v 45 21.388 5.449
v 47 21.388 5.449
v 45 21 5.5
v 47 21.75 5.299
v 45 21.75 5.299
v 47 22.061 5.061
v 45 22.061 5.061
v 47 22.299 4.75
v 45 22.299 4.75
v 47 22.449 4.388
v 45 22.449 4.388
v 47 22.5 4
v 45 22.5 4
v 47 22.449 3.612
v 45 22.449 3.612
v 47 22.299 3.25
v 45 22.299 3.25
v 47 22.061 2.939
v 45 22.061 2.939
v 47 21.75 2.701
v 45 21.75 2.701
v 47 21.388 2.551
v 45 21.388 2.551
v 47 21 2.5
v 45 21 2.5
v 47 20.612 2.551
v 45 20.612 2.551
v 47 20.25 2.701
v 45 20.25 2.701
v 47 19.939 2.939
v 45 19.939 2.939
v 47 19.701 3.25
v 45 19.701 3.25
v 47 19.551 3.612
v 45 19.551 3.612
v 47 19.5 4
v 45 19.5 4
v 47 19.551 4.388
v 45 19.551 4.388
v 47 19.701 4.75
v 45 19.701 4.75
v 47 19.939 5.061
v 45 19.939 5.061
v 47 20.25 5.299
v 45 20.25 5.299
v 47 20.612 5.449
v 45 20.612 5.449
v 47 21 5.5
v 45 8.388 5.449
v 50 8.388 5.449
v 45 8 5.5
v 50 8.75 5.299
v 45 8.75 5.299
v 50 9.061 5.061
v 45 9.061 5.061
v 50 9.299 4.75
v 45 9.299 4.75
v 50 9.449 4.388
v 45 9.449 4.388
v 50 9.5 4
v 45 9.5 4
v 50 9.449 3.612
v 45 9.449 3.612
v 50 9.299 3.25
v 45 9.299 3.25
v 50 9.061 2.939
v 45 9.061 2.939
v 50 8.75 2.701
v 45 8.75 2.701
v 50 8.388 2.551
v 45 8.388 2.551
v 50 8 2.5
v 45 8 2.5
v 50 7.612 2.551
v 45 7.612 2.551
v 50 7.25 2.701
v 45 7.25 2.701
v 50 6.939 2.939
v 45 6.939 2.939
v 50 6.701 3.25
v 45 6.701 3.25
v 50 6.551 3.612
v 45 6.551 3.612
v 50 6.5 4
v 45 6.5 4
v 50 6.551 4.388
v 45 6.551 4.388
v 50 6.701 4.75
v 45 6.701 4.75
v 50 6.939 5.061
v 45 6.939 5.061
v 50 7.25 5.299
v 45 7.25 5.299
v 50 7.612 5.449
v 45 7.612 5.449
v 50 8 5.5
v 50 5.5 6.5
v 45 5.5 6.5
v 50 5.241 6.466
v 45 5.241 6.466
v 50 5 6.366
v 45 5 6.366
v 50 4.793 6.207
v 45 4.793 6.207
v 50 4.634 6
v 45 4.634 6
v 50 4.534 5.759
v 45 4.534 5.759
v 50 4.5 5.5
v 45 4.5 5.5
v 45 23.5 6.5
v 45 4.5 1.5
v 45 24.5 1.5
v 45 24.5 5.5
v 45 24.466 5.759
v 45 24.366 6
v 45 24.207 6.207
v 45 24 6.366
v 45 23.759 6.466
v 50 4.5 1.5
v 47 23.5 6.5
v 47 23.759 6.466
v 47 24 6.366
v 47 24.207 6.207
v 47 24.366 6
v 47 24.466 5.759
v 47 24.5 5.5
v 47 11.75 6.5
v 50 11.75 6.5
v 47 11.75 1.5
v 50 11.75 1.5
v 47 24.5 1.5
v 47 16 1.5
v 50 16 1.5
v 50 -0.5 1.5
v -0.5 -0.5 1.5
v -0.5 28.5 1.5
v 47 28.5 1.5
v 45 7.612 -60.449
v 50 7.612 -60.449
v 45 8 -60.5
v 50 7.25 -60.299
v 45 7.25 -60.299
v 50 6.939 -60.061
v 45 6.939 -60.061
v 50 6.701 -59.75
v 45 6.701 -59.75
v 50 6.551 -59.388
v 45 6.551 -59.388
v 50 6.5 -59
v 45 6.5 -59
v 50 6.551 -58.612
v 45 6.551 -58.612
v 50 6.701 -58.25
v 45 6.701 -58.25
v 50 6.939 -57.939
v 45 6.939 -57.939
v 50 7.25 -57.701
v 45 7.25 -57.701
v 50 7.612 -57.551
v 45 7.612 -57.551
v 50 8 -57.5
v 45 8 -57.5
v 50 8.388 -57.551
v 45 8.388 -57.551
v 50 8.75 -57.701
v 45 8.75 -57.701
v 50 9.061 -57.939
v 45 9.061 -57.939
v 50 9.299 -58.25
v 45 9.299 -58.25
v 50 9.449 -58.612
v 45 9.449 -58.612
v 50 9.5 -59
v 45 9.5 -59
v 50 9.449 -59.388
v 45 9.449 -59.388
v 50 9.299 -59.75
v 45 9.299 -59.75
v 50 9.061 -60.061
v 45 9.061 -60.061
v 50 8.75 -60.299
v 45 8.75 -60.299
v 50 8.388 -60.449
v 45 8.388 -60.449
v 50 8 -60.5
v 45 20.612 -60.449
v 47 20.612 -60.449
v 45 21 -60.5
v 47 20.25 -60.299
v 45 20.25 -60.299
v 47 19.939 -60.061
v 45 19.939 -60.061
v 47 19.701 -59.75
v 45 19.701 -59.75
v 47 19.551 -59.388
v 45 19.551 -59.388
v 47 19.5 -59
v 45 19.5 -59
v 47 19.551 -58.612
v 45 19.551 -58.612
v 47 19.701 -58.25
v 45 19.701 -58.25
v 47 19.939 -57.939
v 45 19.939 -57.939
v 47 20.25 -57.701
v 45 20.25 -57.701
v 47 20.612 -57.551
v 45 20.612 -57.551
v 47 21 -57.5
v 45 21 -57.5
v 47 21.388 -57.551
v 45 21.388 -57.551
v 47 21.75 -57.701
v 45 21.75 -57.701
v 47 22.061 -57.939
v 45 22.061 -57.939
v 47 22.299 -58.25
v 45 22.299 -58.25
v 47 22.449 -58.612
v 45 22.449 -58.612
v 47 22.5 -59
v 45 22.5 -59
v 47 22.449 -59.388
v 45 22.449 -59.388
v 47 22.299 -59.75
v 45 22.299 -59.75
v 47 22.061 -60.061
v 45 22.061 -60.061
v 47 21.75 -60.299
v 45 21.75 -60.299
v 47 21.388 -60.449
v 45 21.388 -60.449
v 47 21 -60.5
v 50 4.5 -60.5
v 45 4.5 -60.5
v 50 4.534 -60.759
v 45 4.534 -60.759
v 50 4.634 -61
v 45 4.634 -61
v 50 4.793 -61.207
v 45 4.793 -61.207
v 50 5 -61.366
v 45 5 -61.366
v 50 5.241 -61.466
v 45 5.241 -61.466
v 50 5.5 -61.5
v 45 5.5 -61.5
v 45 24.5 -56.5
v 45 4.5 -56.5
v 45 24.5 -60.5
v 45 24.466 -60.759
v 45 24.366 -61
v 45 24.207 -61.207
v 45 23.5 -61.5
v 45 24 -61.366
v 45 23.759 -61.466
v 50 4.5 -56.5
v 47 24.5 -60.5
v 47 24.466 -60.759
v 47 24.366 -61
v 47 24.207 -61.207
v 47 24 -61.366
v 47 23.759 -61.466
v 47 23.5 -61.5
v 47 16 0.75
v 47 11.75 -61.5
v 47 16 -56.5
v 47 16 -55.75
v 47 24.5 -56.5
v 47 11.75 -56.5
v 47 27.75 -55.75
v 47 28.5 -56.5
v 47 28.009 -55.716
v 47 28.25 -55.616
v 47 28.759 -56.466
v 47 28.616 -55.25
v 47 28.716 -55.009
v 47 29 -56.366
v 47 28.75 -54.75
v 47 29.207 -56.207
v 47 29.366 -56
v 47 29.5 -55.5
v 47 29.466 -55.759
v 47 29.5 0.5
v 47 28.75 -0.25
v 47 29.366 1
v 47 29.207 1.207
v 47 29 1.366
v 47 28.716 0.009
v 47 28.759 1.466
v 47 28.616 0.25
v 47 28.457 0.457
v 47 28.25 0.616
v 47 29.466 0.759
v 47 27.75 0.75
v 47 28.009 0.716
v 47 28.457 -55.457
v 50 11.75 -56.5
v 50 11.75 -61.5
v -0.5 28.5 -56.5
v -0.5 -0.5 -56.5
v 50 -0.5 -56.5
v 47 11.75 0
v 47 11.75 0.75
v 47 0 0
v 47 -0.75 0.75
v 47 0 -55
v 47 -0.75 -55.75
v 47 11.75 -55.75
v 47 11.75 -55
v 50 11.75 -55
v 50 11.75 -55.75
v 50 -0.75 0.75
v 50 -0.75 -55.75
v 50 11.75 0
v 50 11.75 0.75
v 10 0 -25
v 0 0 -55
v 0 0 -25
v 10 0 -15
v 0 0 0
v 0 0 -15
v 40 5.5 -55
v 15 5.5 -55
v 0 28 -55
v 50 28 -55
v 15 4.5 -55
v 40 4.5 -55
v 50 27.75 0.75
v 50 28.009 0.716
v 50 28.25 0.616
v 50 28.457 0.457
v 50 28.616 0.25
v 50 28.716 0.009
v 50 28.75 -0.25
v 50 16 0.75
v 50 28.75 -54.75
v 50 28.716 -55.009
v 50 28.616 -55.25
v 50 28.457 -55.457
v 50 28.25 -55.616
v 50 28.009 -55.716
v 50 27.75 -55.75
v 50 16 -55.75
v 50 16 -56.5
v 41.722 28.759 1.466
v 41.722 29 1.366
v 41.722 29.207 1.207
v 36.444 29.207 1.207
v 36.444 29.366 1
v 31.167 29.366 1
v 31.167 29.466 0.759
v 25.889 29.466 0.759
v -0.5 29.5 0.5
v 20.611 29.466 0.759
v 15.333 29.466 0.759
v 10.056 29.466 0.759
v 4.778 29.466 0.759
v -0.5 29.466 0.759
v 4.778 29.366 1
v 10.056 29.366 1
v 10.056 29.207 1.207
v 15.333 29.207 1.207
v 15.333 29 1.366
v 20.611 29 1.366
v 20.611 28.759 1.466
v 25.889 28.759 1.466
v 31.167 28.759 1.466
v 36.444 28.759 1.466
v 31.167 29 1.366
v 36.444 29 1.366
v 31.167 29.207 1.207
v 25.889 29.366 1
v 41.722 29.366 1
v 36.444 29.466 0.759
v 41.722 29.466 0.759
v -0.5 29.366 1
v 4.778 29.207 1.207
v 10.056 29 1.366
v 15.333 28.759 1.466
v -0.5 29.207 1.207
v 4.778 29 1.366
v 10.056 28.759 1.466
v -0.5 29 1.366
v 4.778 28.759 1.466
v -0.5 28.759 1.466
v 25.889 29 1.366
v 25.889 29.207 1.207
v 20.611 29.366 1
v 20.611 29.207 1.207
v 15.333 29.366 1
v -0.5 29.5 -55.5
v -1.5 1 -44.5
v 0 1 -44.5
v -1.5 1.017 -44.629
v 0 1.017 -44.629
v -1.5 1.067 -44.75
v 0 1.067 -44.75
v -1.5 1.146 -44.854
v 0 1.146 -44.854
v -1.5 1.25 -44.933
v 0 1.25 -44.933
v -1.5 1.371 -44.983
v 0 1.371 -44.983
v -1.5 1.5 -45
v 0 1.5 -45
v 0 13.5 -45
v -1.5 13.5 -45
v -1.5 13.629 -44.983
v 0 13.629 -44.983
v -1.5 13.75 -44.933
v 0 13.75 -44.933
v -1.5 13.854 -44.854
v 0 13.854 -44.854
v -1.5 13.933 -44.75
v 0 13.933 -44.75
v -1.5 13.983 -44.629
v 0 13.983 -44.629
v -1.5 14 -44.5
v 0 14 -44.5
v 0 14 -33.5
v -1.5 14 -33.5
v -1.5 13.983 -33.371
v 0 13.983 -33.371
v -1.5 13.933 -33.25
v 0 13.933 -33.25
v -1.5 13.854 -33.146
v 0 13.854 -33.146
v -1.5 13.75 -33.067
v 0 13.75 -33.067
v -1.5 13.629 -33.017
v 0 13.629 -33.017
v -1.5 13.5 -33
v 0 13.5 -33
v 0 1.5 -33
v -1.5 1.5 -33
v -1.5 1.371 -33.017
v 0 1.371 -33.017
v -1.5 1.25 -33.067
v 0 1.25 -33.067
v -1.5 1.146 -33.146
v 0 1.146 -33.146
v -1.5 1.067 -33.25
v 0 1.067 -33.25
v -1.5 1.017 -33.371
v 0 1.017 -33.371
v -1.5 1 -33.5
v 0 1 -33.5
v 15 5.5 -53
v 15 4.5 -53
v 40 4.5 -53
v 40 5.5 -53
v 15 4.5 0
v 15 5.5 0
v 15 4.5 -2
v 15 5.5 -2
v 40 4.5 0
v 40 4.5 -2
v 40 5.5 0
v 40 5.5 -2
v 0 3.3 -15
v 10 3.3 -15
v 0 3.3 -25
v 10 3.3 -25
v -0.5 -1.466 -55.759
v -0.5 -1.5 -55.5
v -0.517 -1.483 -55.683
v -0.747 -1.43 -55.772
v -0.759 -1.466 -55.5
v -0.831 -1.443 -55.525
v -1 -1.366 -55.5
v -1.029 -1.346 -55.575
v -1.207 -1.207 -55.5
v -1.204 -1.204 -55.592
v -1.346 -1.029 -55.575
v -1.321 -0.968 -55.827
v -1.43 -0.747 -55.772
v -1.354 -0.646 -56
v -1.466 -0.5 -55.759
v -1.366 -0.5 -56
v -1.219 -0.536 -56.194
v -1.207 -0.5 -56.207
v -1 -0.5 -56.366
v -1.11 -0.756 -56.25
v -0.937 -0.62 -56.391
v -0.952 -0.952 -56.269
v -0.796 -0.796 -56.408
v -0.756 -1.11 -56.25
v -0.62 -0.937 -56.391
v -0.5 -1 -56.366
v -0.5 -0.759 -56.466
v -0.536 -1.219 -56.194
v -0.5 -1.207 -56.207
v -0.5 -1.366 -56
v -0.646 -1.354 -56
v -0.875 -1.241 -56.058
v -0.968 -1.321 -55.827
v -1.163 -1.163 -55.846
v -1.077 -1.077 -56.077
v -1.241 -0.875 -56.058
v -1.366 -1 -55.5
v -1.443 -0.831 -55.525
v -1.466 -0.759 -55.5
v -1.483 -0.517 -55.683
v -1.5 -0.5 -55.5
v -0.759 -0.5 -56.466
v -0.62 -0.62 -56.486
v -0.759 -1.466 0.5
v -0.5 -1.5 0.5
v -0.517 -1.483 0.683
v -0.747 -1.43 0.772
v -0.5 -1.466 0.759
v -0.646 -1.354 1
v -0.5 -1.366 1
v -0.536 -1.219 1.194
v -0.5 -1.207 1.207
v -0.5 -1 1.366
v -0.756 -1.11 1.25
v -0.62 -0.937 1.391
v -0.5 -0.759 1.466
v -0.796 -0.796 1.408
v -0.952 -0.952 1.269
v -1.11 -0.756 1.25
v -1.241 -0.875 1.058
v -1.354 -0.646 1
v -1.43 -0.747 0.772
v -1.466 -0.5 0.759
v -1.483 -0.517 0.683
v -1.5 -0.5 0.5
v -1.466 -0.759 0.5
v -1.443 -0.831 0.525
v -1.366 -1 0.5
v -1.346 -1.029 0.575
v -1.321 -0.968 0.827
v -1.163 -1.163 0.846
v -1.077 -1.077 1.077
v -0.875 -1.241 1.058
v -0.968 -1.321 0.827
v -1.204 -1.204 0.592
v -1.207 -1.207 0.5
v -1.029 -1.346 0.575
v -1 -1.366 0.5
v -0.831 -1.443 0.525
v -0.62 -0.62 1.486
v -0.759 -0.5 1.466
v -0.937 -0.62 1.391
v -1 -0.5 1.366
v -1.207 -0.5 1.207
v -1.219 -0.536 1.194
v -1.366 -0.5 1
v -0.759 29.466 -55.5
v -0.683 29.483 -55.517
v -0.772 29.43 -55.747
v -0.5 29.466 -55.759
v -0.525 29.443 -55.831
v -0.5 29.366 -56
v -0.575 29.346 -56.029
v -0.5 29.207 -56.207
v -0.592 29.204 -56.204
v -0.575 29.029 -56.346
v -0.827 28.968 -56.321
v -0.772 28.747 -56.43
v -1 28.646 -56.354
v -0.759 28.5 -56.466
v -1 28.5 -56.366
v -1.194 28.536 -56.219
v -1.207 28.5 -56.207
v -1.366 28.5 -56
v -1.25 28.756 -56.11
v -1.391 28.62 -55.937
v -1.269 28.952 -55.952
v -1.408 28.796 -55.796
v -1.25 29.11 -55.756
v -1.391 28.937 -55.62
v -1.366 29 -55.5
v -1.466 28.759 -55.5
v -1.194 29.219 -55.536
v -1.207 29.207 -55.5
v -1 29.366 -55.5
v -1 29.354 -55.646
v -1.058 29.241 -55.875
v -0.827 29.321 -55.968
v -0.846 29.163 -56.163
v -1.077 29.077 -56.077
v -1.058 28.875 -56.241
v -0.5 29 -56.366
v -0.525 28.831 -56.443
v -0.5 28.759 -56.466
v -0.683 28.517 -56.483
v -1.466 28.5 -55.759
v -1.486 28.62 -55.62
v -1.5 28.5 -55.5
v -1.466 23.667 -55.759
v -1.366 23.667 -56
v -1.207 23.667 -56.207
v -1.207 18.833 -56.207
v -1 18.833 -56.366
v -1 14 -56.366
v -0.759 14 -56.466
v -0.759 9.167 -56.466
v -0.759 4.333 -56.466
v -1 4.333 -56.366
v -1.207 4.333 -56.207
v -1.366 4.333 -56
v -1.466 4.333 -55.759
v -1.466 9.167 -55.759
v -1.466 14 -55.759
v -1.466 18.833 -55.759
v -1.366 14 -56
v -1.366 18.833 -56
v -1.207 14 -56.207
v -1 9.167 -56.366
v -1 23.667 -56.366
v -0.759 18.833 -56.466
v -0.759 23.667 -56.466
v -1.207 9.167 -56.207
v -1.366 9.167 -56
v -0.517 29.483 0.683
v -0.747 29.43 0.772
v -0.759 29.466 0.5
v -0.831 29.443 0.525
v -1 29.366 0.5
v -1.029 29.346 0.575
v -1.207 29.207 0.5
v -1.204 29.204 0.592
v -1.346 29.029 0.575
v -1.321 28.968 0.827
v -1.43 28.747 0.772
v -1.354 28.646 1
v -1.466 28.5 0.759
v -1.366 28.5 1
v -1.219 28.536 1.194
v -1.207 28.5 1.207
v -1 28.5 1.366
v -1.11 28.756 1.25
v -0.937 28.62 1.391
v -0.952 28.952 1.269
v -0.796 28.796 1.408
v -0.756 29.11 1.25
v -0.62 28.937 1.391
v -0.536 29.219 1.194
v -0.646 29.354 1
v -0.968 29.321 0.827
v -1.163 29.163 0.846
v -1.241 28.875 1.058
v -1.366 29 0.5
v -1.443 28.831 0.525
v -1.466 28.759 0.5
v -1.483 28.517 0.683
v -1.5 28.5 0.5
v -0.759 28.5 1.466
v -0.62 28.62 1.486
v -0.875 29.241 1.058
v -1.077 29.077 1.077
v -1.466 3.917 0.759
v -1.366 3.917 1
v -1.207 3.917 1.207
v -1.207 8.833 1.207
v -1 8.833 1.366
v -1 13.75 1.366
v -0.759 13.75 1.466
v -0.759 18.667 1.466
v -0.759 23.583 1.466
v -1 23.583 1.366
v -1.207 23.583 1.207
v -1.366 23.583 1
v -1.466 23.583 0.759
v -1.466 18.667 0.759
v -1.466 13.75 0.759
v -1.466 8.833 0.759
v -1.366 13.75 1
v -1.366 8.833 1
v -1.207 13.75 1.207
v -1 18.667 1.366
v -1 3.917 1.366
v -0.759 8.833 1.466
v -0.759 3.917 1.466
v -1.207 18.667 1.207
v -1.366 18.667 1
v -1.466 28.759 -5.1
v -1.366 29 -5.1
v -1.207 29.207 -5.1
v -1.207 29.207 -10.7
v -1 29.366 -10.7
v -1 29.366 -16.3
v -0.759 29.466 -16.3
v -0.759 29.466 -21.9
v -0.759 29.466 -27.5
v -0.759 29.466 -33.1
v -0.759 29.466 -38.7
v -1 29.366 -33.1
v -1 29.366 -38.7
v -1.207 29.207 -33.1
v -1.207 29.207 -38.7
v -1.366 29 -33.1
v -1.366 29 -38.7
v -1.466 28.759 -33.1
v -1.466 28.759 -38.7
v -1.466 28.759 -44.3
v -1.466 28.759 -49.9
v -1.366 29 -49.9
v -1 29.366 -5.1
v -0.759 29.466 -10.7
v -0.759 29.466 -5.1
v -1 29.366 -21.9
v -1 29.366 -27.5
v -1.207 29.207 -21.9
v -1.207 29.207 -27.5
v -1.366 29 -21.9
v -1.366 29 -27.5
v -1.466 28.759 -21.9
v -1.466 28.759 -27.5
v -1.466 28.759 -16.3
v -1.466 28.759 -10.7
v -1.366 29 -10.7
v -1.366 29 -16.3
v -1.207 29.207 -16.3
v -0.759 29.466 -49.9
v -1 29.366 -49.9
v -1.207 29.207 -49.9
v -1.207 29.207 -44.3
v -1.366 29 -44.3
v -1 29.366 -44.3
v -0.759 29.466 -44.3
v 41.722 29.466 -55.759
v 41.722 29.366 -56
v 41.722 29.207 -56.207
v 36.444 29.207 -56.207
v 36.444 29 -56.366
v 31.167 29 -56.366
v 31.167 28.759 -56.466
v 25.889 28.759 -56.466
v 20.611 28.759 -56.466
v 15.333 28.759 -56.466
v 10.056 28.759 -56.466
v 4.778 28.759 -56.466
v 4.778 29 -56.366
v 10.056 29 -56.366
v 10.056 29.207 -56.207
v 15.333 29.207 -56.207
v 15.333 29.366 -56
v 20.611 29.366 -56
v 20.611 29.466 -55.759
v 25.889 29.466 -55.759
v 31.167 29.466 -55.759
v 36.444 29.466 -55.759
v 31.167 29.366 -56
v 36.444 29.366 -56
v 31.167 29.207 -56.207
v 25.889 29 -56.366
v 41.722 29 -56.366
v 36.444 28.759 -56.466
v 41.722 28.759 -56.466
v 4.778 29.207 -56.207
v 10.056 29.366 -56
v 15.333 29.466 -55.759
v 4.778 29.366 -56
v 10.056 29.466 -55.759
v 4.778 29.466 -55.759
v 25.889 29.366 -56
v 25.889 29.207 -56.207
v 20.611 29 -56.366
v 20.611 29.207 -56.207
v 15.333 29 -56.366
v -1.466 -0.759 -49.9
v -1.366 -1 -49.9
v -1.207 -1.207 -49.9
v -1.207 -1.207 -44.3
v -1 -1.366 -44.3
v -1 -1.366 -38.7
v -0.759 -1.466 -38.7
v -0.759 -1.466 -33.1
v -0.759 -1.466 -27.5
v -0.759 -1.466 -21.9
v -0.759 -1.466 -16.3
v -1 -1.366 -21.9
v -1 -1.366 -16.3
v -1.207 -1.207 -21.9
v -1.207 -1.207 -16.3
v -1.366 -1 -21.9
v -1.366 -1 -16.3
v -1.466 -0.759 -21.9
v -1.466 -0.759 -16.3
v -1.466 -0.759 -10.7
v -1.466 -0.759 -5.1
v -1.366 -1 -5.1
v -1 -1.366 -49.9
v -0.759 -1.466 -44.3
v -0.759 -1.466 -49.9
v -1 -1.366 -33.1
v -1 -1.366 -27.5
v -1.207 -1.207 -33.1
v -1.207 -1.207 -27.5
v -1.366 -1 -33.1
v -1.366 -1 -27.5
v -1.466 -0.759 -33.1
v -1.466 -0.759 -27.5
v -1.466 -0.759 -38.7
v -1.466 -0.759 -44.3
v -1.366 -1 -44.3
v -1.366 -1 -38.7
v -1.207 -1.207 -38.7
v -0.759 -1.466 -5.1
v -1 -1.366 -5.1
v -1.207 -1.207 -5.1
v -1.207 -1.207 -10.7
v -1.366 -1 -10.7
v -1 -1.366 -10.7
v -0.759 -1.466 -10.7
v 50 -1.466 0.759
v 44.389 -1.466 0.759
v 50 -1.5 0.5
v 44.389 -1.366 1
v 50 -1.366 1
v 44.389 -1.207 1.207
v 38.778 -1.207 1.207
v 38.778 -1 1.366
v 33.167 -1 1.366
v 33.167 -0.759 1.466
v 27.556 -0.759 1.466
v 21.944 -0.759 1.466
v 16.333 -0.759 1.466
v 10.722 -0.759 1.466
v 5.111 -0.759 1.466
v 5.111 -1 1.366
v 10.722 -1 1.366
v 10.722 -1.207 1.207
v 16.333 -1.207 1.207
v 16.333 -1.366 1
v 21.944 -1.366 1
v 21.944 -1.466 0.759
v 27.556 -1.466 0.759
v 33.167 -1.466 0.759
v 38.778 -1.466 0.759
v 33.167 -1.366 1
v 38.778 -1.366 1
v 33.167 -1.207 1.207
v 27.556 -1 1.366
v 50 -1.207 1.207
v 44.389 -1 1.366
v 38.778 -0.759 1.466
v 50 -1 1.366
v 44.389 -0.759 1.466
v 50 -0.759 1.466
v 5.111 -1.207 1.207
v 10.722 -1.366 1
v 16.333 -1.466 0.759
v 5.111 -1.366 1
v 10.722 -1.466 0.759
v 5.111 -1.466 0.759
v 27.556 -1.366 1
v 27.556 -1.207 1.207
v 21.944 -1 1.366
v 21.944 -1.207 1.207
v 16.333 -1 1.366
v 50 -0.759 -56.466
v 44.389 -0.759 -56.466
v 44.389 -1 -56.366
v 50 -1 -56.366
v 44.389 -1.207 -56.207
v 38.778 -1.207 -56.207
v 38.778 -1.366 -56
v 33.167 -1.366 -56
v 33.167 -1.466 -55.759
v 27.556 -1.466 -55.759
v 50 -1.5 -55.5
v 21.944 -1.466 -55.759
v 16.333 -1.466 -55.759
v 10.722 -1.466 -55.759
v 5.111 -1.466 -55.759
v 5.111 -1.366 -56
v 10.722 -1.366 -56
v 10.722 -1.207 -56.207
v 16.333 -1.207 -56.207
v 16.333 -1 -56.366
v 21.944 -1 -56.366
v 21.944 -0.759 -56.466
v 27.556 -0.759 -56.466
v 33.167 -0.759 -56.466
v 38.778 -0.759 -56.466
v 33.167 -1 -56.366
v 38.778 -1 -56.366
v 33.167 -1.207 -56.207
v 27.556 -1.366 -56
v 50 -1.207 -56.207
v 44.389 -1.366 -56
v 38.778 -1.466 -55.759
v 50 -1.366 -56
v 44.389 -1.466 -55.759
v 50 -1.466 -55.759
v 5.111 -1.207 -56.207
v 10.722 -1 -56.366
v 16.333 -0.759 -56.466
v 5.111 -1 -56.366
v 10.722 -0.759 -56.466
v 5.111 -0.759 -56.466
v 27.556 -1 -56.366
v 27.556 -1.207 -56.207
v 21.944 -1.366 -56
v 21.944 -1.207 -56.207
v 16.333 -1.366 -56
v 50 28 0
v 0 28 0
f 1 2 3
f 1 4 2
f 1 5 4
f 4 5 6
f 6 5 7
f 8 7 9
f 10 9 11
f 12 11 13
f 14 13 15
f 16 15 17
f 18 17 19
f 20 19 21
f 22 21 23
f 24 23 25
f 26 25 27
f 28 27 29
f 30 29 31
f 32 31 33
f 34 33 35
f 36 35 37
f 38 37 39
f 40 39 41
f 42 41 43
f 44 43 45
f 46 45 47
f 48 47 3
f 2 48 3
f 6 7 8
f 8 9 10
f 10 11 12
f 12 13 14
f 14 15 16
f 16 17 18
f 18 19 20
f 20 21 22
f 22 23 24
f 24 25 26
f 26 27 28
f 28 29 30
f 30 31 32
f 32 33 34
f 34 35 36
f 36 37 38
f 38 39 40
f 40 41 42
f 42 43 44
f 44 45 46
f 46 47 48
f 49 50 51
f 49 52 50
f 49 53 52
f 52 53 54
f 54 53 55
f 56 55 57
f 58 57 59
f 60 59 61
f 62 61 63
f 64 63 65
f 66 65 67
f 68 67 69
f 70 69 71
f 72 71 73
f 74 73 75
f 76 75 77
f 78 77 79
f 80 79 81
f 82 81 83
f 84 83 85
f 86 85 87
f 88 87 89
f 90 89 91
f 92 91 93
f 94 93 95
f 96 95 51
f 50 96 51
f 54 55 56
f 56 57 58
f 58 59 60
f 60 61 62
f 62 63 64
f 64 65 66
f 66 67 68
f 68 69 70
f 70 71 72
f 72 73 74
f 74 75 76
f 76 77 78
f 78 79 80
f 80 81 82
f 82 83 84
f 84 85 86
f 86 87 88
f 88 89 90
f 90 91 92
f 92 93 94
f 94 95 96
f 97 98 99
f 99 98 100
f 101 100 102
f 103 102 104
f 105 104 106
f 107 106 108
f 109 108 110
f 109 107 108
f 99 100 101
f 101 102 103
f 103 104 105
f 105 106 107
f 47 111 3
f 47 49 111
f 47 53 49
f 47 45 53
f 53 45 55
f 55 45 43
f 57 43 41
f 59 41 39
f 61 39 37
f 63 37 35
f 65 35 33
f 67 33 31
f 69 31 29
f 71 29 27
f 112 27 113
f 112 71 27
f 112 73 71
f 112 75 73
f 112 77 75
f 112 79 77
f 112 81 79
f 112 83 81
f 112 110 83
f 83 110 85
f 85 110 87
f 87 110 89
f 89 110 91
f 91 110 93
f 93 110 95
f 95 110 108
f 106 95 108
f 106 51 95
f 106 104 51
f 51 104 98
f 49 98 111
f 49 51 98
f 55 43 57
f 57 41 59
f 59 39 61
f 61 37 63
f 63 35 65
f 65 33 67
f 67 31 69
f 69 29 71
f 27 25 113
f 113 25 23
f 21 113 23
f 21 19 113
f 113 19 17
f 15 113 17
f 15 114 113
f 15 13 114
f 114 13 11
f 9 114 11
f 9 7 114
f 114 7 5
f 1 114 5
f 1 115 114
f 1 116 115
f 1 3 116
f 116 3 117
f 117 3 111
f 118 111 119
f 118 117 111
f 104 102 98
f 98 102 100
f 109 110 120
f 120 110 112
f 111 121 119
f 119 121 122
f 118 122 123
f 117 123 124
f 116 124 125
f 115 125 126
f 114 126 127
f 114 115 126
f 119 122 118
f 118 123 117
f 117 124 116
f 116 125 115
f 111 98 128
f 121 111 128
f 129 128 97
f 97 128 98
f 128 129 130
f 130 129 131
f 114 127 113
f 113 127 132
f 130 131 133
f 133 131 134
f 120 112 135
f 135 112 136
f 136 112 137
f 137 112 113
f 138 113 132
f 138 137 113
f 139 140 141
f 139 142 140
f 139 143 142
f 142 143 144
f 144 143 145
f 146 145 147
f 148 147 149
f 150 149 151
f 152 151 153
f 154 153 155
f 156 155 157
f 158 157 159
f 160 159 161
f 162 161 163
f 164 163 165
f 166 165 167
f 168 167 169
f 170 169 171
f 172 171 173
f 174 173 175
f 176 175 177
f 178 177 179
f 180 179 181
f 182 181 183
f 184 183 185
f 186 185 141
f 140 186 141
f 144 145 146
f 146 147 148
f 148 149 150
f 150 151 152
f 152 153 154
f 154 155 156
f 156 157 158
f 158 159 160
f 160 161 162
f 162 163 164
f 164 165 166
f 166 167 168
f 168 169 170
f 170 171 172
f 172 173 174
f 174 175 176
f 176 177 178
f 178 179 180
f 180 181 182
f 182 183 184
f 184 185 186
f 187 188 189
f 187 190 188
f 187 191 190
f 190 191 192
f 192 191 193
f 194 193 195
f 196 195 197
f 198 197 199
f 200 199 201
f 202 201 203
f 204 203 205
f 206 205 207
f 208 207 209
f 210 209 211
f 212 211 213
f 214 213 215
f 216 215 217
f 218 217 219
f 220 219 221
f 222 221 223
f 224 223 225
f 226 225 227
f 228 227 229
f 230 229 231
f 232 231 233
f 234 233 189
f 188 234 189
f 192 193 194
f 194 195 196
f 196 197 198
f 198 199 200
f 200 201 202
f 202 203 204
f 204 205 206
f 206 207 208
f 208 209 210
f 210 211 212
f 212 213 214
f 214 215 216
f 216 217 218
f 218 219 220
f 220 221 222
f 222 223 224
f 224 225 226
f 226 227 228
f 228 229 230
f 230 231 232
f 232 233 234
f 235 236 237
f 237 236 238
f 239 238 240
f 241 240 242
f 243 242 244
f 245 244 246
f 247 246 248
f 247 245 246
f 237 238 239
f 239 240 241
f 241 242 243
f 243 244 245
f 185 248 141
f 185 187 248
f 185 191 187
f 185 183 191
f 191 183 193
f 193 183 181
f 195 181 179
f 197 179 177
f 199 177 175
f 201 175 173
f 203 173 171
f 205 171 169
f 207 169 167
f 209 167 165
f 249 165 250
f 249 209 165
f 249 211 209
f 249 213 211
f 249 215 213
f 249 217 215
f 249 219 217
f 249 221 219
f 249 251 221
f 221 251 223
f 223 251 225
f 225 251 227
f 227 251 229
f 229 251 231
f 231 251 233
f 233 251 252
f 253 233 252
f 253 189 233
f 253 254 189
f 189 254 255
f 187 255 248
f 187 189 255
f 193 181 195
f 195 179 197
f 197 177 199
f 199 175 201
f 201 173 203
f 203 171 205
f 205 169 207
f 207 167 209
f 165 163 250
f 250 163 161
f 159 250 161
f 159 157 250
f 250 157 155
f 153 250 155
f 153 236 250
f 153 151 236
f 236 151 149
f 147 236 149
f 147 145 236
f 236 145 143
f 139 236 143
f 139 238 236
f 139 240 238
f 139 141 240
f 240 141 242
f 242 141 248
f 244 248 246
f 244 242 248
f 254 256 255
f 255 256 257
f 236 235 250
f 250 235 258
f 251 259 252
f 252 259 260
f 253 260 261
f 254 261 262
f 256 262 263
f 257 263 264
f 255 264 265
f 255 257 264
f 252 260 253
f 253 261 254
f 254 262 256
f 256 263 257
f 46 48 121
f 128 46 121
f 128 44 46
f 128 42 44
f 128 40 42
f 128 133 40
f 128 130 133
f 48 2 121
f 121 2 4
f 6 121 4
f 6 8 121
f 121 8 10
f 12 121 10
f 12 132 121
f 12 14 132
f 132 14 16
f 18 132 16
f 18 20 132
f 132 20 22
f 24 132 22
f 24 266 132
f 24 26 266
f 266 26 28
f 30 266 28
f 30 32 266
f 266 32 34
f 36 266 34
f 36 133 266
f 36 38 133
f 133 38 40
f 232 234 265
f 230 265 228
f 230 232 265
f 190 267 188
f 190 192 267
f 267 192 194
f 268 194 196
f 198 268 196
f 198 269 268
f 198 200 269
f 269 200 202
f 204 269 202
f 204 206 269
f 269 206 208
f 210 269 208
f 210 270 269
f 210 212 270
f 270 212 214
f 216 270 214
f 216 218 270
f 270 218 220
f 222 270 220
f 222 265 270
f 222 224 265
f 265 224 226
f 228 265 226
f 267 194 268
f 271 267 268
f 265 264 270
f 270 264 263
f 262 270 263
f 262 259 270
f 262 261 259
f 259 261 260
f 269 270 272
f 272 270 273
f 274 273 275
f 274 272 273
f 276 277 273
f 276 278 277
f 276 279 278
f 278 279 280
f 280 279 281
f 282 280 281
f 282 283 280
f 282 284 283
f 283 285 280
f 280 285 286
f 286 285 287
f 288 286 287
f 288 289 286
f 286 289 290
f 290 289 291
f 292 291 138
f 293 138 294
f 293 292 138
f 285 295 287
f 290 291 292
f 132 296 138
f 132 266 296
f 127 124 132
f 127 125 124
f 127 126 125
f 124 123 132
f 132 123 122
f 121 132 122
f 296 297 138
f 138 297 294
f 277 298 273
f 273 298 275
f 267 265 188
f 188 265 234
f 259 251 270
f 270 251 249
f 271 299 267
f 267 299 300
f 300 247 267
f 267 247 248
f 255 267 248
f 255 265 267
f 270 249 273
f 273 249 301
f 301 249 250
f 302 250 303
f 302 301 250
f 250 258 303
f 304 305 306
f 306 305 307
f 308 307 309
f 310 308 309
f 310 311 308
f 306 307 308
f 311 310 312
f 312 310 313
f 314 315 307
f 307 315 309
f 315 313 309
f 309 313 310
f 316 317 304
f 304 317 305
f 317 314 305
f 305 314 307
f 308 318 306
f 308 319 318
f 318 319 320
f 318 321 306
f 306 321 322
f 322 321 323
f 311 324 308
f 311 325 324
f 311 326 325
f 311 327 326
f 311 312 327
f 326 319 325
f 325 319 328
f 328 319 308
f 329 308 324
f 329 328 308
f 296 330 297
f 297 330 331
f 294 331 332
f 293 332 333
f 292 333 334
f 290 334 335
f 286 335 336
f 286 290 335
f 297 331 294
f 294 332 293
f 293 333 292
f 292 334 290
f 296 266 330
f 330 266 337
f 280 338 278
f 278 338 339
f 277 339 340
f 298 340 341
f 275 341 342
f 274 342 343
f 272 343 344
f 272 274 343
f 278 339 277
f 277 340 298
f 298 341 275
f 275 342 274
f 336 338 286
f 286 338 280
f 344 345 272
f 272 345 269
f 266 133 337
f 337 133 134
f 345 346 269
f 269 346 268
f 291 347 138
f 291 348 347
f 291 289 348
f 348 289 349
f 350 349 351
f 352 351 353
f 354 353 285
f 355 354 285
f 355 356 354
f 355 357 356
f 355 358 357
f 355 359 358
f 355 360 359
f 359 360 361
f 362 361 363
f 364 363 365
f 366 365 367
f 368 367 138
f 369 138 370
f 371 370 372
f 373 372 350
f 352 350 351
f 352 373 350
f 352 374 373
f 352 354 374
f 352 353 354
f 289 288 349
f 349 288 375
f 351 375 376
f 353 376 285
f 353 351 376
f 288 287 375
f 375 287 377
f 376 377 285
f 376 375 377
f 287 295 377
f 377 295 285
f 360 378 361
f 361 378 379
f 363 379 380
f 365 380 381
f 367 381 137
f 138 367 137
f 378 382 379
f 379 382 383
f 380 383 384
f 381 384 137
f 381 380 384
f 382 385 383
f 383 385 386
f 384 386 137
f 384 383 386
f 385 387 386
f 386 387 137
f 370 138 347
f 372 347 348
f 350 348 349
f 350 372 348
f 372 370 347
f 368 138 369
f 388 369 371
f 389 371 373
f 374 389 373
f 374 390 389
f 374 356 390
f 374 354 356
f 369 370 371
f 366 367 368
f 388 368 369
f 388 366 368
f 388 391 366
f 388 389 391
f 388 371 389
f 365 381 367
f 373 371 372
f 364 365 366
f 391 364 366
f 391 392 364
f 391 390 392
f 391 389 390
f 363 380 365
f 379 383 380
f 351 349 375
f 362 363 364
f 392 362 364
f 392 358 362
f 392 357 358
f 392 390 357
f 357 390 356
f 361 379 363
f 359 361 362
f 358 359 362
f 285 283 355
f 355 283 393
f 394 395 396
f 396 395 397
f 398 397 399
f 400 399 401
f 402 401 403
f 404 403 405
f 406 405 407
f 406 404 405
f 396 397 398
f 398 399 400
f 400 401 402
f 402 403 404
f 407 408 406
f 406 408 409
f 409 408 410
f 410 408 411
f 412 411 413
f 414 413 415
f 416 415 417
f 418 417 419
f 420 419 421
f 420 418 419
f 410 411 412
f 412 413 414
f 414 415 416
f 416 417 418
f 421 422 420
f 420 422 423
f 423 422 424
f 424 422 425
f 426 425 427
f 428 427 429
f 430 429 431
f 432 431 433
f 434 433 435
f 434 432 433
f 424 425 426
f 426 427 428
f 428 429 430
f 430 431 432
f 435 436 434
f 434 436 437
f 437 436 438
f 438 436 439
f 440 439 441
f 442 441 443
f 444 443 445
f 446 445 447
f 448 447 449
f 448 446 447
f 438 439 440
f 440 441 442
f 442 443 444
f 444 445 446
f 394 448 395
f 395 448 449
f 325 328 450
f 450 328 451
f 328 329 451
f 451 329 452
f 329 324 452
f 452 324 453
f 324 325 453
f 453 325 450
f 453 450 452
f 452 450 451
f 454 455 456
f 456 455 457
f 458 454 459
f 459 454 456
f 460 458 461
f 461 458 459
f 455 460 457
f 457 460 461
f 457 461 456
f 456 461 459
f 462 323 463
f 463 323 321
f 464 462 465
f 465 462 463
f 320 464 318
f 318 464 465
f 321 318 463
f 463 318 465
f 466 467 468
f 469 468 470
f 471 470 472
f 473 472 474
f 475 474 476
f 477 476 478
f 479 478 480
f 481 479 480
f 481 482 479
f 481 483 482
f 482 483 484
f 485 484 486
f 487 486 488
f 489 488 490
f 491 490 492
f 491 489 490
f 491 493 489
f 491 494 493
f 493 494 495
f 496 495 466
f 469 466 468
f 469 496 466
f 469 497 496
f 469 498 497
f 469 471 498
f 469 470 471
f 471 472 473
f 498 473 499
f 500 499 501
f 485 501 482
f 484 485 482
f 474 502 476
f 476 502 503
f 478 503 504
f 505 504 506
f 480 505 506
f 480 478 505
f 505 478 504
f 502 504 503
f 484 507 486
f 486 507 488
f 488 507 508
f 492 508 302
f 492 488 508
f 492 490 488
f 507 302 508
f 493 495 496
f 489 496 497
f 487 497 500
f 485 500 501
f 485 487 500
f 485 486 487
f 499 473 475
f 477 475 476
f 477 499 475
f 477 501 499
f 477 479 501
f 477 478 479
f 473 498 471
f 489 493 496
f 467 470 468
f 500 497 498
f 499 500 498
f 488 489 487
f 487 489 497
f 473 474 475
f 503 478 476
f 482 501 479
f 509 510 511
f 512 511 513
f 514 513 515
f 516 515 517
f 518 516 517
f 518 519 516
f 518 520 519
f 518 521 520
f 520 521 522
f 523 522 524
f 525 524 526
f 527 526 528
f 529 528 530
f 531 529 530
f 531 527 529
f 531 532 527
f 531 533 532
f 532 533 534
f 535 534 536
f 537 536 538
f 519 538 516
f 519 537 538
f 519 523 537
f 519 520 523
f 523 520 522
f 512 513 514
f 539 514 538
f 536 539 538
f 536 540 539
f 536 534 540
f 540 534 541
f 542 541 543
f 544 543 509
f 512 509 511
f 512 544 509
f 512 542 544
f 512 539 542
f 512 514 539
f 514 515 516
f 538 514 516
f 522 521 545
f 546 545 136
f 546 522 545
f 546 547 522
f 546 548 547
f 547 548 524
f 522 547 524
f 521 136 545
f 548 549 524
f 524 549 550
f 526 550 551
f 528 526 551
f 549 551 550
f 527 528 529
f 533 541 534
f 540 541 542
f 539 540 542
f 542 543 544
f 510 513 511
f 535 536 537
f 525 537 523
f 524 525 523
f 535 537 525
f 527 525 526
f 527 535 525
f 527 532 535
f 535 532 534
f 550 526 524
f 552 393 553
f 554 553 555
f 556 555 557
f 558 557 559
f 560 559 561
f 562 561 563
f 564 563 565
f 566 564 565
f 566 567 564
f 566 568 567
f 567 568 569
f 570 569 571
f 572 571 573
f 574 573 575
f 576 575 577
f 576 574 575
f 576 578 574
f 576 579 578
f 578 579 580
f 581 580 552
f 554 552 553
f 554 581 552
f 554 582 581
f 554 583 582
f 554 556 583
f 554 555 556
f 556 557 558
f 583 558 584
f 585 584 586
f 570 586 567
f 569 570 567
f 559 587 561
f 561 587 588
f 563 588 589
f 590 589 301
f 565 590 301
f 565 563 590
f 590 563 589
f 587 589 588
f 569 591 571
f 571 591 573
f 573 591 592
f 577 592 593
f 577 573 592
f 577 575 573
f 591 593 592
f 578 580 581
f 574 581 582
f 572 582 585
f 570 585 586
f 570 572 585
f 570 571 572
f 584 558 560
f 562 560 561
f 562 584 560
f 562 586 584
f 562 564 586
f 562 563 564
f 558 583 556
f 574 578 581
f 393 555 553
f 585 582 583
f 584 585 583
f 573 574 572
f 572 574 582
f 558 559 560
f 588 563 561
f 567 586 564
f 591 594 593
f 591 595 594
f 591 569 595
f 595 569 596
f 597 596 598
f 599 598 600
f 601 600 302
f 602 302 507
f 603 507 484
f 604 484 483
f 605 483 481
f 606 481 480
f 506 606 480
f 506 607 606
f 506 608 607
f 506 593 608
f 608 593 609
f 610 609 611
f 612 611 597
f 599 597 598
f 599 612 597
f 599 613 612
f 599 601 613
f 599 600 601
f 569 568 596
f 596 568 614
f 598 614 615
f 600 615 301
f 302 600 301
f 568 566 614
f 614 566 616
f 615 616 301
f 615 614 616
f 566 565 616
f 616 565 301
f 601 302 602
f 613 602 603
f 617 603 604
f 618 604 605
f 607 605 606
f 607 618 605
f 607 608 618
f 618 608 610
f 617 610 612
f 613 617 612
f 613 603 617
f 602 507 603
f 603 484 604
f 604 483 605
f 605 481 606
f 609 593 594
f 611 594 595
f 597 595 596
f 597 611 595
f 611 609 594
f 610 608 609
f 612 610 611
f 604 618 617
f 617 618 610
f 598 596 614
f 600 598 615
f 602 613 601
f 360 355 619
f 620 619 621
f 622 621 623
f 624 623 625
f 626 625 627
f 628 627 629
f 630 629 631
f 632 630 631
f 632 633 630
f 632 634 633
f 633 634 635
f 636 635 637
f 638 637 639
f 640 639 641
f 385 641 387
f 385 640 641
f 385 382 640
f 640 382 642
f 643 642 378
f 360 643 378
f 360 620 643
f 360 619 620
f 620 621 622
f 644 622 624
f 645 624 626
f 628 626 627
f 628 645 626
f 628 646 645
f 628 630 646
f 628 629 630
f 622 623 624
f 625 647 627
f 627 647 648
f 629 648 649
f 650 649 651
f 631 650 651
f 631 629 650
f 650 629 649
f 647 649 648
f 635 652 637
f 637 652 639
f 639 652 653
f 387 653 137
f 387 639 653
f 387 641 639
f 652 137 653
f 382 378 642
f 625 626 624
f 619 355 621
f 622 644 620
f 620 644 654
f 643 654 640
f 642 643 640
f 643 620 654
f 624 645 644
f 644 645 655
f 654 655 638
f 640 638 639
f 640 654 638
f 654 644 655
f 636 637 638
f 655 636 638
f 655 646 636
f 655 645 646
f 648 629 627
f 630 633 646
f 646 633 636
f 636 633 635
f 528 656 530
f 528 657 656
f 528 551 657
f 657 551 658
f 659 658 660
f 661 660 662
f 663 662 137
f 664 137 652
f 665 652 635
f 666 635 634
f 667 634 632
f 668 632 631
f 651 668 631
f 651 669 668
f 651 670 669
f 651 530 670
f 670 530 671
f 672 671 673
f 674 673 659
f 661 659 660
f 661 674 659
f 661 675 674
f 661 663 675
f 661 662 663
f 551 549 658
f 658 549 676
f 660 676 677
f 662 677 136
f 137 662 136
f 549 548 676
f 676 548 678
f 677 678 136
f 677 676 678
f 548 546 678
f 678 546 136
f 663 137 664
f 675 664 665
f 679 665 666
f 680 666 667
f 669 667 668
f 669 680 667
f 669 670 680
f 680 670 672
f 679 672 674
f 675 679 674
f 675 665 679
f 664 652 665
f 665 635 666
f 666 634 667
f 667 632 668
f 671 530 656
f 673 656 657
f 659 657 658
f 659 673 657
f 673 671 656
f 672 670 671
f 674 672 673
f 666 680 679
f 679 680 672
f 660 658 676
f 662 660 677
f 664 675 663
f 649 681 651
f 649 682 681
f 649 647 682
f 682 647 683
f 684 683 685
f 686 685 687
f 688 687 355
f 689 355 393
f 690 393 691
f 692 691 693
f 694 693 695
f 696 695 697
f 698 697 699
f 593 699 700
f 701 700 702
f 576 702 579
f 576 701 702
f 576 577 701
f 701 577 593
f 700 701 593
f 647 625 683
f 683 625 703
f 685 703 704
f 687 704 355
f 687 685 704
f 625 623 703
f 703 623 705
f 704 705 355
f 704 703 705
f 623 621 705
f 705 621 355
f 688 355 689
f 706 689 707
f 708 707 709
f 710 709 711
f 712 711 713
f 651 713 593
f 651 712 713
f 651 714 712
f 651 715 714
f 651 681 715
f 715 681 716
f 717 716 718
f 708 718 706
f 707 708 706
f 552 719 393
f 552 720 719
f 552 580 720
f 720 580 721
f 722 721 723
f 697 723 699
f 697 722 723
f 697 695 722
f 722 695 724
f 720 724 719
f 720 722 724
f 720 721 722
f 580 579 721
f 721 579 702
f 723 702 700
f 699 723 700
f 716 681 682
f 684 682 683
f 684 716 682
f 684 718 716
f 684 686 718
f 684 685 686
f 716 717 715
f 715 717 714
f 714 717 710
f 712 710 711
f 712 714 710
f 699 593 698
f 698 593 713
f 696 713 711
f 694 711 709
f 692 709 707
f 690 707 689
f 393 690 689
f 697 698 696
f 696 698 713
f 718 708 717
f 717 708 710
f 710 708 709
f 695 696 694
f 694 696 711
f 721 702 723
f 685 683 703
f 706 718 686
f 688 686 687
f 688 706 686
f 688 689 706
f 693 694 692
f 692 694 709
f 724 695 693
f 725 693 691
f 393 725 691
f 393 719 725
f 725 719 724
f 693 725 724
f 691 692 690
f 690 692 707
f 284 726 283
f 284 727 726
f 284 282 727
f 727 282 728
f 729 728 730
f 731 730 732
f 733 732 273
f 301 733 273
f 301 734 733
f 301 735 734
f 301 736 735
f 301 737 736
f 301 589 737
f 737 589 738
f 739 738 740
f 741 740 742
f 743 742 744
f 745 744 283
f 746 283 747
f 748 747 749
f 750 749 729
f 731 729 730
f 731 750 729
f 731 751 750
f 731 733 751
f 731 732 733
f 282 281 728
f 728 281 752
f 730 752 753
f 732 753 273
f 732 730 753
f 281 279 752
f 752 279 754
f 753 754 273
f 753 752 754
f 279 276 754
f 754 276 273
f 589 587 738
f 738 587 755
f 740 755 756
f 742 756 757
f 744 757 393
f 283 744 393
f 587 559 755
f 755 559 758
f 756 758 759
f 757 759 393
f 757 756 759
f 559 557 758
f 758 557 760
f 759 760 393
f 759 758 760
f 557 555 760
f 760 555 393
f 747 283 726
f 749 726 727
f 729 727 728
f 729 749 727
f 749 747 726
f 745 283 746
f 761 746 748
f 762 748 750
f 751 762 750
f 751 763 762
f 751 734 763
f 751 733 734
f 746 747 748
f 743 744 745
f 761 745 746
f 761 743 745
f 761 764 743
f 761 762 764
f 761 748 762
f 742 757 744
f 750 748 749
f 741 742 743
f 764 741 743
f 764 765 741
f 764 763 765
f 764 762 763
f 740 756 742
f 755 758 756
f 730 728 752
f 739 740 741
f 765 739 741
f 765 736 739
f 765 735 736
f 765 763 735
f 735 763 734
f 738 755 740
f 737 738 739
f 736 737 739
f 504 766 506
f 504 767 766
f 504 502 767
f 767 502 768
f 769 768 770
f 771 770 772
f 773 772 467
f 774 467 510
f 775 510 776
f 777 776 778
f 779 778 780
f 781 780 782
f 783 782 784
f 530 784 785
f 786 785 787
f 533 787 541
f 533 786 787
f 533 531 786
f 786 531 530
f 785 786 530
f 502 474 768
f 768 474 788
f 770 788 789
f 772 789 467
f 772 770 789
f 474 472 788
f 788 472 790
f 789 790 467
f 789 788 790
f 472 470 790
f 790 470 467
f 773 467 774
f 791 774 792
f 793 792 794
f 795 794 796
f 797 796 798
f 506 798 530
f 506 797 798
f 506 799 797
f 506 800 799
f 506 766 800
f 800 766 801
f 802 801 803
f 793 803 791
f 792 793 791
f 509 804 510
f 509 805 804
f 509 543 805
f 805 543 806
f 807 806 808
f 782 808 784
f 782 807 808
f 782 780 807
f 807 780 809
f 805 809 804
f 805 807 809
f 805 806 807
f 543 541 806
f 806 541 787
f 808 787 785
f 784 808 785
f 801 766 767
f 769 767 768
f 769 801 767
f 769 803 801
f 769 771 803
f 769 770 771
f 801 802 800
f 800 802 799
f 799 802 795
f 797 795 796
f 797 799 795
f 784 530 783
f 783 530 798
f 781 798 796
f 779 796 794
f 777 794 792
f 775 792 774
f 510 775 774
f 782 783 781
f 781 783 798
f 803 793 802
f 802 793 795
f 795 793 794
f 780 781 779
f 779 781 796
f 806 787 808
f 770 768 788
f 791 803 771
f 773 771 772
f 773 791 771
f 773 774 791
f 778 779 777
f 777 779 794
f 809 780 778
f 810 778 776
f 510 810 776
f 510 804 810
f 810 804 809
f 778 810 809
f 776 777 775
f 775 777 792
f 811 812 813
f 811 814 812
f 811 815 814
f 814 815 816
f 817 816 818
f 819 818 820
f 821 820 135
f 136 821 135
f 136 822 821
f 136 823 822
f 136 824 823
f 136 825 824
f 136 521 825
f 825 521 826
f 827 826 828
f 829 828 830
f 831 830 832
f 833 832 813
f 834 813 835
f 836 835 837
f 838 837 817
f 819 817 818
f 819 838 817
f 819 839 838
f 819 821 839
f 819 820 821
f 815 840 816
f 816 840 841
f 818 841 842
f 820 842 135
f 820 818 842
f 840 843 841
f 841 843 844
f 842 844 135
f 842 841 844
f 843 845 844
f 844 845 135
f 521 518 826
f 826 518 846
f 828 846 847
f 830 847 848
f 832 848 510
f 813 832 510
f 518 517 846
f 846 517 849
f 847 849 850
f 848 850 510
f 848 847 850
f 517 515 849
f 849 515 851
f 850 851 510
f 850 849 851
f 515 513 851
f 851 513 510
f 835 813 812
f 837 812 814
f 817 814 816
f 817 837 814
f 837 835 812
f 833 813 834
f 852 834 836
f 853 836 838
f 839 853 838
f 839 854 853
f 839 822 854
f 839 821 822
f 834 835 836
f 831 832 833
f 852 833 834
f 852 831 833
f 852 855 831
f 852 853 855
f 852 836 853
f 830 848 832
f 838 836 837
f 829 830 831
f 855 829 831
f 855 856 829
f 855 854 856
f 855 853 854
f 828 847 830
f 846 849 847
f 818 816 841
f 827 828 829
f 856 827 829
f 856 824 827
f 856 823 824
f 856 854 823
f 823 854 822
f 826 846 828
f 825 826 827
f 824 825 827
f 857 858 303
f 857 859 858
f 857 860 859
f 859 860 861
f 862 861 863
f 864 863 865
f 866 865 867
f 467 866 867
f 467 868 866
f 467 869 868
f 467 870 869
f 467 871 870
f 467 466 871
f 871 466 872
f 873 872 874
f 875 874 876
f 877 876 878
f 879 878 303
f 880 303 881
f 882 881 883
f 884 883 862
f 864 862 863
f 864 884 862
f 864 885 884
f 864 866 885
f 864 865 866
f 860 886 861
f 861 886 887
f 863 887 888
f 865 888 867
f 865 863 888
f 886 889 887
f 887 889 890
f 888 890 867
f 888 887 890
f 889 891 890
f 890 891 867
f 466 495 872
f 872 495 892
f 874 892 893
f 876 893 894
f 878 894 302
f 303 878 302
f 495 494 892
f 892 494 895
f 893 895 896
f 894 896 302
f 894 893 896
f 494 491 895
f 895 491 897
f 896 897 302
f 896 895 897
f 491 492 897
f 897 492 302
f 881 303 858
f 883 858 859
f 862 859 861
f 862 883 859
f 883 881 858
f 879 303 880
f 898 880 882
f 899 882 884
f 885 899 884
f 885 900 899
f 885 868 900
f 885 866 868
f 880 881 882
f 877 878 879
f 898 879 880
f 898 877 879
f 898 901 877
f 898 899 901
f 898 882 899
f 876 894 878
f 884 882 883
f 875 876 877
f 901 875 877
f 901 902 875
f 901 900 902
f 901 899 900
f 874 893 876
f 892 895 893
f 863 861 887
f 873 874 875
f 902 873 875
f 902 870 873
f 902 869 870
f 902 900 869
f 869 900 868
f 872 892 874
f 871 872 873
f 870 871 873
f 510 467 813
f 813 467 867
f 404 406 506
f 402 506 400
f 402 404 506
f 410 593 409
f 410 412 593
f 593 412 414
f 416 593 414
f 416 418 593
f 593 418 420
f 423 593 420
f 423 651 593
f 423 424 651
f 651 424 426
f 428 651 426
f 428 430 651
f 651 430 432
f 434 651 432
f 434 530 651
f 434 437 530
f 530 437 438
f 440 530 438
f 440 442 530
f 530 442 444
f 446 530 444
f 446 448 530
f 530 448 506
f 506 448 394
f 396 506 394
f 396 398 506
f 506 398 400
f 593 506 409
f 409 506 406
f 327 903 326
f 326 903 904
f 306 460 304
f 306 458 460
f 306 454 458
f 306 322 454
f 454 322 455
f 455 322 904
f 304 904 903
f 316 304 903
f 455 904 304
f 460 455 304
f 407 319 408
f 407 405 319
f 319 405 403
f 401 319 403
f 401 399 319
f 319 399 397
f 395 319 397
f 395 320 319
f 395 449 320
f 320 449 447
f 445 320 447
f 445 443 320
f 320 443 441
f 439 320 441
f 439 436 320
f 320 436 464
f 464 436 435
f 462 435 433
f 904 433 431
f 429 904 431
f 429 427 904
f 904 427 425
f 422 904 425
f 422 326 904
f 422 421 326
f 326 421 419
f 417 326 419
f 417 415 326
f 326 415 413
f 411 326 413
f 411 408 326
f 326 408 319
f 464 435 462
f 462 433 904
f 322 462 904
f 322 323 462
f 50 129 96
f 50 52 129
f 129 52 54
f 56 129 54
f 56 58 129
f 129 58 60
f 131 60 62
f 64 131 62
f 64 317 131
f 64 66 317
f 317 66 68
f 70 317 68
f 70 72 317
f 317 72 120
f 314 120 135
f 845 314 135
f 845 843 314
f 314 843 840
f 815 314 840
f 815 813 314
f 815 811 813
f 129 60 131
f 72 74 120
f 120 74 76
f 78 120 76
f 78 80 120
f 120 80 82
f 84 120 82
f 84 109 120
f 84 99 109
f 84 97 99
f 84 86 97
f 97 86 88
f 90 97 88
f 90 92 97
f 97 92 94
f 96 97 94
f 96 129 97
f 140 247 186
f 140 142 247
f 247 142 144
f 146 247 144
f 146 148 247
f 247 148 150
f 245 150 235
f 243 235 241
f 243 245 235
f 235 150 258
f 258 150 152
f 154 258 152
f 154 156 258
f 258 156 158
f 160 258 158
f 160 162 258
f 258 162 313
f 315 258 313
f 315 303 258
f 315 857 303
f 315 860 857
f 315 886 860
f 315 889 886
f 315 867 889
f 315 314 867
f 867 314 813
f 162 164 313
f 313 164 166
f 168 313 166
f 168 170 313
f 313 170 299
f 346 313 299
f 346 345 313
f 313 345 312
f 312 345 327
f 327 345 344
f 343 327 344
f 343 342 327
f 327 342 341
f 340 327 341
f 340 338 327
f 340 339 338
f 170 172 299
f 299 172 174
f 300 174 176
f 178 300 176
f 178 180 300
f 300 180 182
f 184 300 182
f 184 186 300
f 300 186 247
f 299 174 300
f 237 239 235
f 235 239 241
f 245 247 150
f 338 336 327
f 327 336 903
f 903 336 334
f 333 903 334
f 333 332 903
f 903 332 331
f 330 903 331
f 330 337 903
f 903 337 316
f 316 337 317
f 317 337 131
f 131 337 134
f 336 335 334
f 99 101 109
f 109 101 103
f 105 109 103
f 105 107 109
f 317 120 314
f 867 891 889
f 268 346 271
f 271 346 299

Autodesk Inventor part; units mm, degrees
ref_plane "YZ Plane" through (0, 0, 0) normal (1, 0, 0) x (0, 1, 0)
ref_plane "XZ Plane" through (0, 0, 0) normal (0, 1, 0) x (-1, 0, 0)
ref_plane "XY Plane" through (0, 0, 0) normal (0, 0, 1) x (1, 0, 0)
sketch "Sketch1" plane through (0, 0, 0) normal (0, 1, 0) x (-1, 0, 0)
  line L0 (0, 0) -> (-48.5, 0)
  line L1 (-48.5, 0) -> (-48.5, -55)
  line L2 (-48.5, -55) -> (0, -55)
  line L3 (0, -55) -> (0, 0)
  line L4 (1.5, 1.5) -> (-50, 1.5)
  line L5 (-50, 1.5) -> (-50, -56.5)
  line L6 (-50, -56.5) -> (1.5, -56.5)
  line L7 (1.5, -56.5) -> (1.5, 1.5)
  dimension "d0" = 55
  dimension "d1" = 48.5
  dimension "d2" = 51.5
  dimension "d3" = 58
  dimension "d4" = 1.5
  dimension "d5" = 1.5
extrude "Extrusion1" add sketch "Sketch1" against normal blind 1.5 contours L3 L2 L1 L0 | L7 L6 L5 L4
sketch "Sketch2" plane through (0, 0, 0) normal (0, 1, 0) x (1, 0, 0)
  line L0 (-1.5, -1.5) -> (50, -1.5)
  line L1 (50, 56.5) -> (-1.5, 56.5)
  line L2 (-1.5, 56.5) -> (-1.5, -1.5)
  line L3 (0, 0) -> (50, 0)
  line L4 (50, 55) -> (0, 55)
  line L5 (0, 55) -> (0, 0)
  line L6 (50, 0) -> (50, -1.5)
  line L7 (50, 56.5) -> (50, -1.5) projected
  line L8 (50, 55) -> (50, 56.5)
  line L9 (-1.5, 56.5) -> (50, 56.5) projected
  dimension "d8" = 55
extrude "Extrusion2" add sketch "Sketch2" along normal blind 28 contours L2 L1 L7 L4 L5 L3 L6 L0
sketch "Sketch3" plane through (0, 28, 0) normal (0, 1, 0) x (1, 0, 0)
  line L0 (-1.5, 56.5) -> (50, 56.5)
  line L1 (50, 56.5) -> (50, -1.5)
  line L2 (50, -1.5) -> (-1.5, -1.5)
  line L3 (-1.5, -1.5) -> (-1.5, 56.5)
  point P0 (0, 0)
extrude "Extrusion3" add sketch "Sketch3" along normal blind 1.5
fillet "Fillet1" radius 1 8 edges at (24.25, 29.5, 1.5) (24.25, 29.5, -56.5) (-1.5, 29.5, -27.5) (-1.5, 14, 1.5) (24.25, -1.5, 1.5) (-1.5, -1.5, -27.5) (24.25, -1.5, -56.5) (-1.5, 14, -56.5)
sketch "Sketch4" plane through (0, 0, 0) normal (1, 0, 0) x (0, 0, -1)
  line L0 (15, 0) -> (25, 0)
  line L1 (25, 0) -> (25, 3.3)
  line L2 (25, 3.3) -> (15, 3.3)
  line L3 (15, 3.3) -> (15, 0)
  line L4 (0, 0) -> (0, 28) projected
  dimension "d14" = 3.3
  dimension "d15" = 10
  dimension "d16" = 15
extrude "Extrusion4" add sketch "Sketch4" along normal blind 10
ref_plane "Work Plane1" through (50, 0, -27.5) normal (0, 0, -1) x (-1, 0, 0)
sketch "Sketch5" plane through (50, 0, 0) normal (0, 0, -1) x (-1, 0, 0)
  line L0 (10, 5.5) -> (35, 5.5)
  line L1 (35, 5.5) -> (35, 4.5)
  line L2 (35, 4.5) -> (10, 4.5)
  line L3 (10, 4.5) -> (10, 5.5)
  line L4 (50, 0) -> (0, 0) projected
  line L5 (50, 0) -> (50, 28) projected
  line L6 (0, 0) -> (0, 28) projected
  dimension "d20" = 1
  dimension "d21" = 4.5
  dimension "d22" = 15
  dimension "d23" = 10
extrude "Extrusion5" add sketch "Sketch5" along normal blind 2
mirror "Mirror1" about plane through (50, 0, -27.5) normal (0, 0, -1) of "Extrusion5"
sketch "Sketch6" plane through (0, 0, -55) normal (1, 0, 0) x (0, 0, -1)
  line L0 (-22, 1) -> (-10, 1)
  line L1 (-10, 1) -> (-10, 14)
  line L2 (-10, 14) -> (-22, 14)
  line L3 (-22, 14) -> (-22, 1)
  line L4 (0, 0) -> (-30, 0) projected
  line L5 (0, 0) -> (0, 28) projected
  point P0 (-55, 0)
  dimension "d26" = 1
  dimension "d27" = 22
  dimension "d28" = 10
  dimension "d29" = 13
extrude "Extrusion6" cut sketch "Sketch6" against normal blind 2
fillet "Fillet2" radius 0.5 4 edges at (-0.75, 1, -33) (-0.75, 14, -33) (-0.75, 14, -45) (-0.75, 1, -45)
sketch "Sketch7" plane through (50, -0.5, 1.5) normal (1, 0, 0) x (0, 0, -1)
  line L0 (0, 0) -> (0, 29) projected
  line L1 (0, 16.5) -> (58, 16.5)
  line L2 (58, 16.5) -> (58, 30)
  line L3 (58, 30) -> (0, 30)
  line L4 (0, 30) -> (0, 16.5)
  line L5 (0.75, 29.25) -> (57.25, 29.25)
  line L6 (57.25, 29.25) -> (57.25, 16.5)
  line L7 (57.25, 16.5) -> (0.75, 16.5)
  line L8 (0.75, 16.5) -> (0.75, 29.25)
  line L9 (58, 0) -> (58, 29) projected
  line L10 (56.5, 0.5) -> (56.5, 28.5) projected
  line L11 (1.5, 28.5) -> (56.5, 28.5)
  line L12 (56.5, 28.5) -> (56.5, 16.5)
  line L13 (56.5, 16.5) -> (1.5, 16.5)
  line L14 (1.5, 16.5) -> (1.5, 28.5)
  line L15 (1, 30) -> (57, 30) projected
  point P0 (1.5, 0.5)
  dimension "d33" = 0.75
  dimension "d34" = 0.75
  dimension "d35" = 0
  dimension "d36" = 0.75
  dimension "d37" = 0
  dimension "d38" = 0.75
  dimension "d39" = 0.75
  dimension "d40" = 12.75
  dimension "d41" = 0
extrude "Extrusion7" cut sketch "Sketch7" against normal blind 3 contours L0 L4 L3 L2 L1 L6 L5 L8
fillet "Fillet3" radius 1 2 edges at (48.5, 28.75, -55.75) (48.5, 28.75, 0.75)
sketch "Sketch8" plane through (50, -1.5, 0.5) normal (1, 0, 0) x (0, 0, -1)
  line L0 (57.0002, 13.25) -> (-0.9998, 13.25)
  line L1 (-0.9998, 13.25) -> (-0.9998, 0.75)
  line L2 (-0.9998, 0.75) -> (57.0002, 0.75)
  line L3 (57.0002, 0.75) -> (57.0002, 13.25)
  line L4 (56, 0) -> (0, 0) projected
  line L5 (-0.2498, 13.25) -> (56.2502, 13.25)
  line L6 (56.2502, 13.25) -> (56.2502, 0.75)
  line L7 (56.2502, 0.75) -> (-0.2498, 0.75)
  line L8 (-0.2498, 0.75) -> (-0.2498, 13.25)
  line L9 (0.5, 13.25) -> (55.5, 13.25)
  line L10 (55.5, 13.25) -> (55.5, 1.5)
  line L11 (55.5, 1.5) -> (0.5, 1.5)
  line L12 (0.5, 1.5) -> (0.5, 13.25)
  dimension "d45" = 58
  dimension "d46" = 12.5
  dimension "d47" = 0.75
  dimension "d48" = 0
  dimension "d49" = 0.75
  dimension "d50" = 0.75
extrude "Extrusion8" cut sketch "Sketch8" against normal blind 3 contours L6 L2 L8 L0 L12 L11 L10
sketch "Sketch9" plane through (50, -0.5, -56.5) normal (0, 0, -1) x (-1, 0, 0)
  line L0 (3, 12.25) -> (5, 12.25)
  line L1 (5, 12.25) -> (5, 25)
  line L2 (5, 25) -> (3, 25)
  line L3 (3, 25) -> (3, 12.25)
  line L4 (5, 12.25) -> (0, 12.25)
  line L5 (0, 12.25) -> (0, 5)
  line L6 (0, 5) -> (5, 5)
  line L7 (5, 5) -> (5, 12.25)
  line L8 (0, 0) -> (0, 16.5) projected
  point P0 (50, 0.5)
  point P1 (3, 30)
  point P2 (0, -1)
  dimension "d60" = 2
  dimension "d61" = 12.75
  dimension "d62" = 5
  dimension "d63" = 5
  dimension "d64" = 7.25
  dimension "d65" = 0
extrude "Extrusion9" add sketch "Sketch9" along normal blind 5
fillet "Fillet4" radius 1 2 edges at (46, 24.5, -61.5) (47.5, 4.5, -61.5)
sketch "Sketch10" plane through (47, -0.5, 1.5) normal (1, 0, 0) x (0, 0, -1)
  circle A0 centre (60.5, 21.5) radius 1.5
  line L0 (63, 24) -> (63, 12.25) projected
  line L1 (58, 25) -> (62, 25) projected
  point P0 (1.5, 0.5)
  dimension "d69" = 3
  dimension "d70" = 2.5
  dimension "d71" = 3.5
extrude "Extrusion10" cut sketch "Sketch10" against normal blind 2
sketch "Sketch11" plane through (50, -1.5, 0.5) normal (1, 0, 0) x (0, 0, -1)
  circle A0 centre (59.5, 9.5) radius 1.5
  line L0 (57, 6) -> (61, 6) projected
  line L1 (62, 13.25) -> (62, 7) projected
  point P0 (0.5, 1.5)
  dimension "d74" = 3
  dimension "d75" = 3.5
  dimension "d76" = 2.5
extrude "Extrusion11" cut sketch "Sketch11" against normal blind 5
mirror "Mirror2" about plane through (50, 0, -27.5) normal (0, 0, -1) of "Extrusion9", "Extrusion11", "Fillet4", "Extrusion10"
equation "\"d34\" = d33"
equation "\"d36\" = d33"
equation "\"d38\" = d36"
equation "\"d39\" = d33"
properties part number "sensor2t"
